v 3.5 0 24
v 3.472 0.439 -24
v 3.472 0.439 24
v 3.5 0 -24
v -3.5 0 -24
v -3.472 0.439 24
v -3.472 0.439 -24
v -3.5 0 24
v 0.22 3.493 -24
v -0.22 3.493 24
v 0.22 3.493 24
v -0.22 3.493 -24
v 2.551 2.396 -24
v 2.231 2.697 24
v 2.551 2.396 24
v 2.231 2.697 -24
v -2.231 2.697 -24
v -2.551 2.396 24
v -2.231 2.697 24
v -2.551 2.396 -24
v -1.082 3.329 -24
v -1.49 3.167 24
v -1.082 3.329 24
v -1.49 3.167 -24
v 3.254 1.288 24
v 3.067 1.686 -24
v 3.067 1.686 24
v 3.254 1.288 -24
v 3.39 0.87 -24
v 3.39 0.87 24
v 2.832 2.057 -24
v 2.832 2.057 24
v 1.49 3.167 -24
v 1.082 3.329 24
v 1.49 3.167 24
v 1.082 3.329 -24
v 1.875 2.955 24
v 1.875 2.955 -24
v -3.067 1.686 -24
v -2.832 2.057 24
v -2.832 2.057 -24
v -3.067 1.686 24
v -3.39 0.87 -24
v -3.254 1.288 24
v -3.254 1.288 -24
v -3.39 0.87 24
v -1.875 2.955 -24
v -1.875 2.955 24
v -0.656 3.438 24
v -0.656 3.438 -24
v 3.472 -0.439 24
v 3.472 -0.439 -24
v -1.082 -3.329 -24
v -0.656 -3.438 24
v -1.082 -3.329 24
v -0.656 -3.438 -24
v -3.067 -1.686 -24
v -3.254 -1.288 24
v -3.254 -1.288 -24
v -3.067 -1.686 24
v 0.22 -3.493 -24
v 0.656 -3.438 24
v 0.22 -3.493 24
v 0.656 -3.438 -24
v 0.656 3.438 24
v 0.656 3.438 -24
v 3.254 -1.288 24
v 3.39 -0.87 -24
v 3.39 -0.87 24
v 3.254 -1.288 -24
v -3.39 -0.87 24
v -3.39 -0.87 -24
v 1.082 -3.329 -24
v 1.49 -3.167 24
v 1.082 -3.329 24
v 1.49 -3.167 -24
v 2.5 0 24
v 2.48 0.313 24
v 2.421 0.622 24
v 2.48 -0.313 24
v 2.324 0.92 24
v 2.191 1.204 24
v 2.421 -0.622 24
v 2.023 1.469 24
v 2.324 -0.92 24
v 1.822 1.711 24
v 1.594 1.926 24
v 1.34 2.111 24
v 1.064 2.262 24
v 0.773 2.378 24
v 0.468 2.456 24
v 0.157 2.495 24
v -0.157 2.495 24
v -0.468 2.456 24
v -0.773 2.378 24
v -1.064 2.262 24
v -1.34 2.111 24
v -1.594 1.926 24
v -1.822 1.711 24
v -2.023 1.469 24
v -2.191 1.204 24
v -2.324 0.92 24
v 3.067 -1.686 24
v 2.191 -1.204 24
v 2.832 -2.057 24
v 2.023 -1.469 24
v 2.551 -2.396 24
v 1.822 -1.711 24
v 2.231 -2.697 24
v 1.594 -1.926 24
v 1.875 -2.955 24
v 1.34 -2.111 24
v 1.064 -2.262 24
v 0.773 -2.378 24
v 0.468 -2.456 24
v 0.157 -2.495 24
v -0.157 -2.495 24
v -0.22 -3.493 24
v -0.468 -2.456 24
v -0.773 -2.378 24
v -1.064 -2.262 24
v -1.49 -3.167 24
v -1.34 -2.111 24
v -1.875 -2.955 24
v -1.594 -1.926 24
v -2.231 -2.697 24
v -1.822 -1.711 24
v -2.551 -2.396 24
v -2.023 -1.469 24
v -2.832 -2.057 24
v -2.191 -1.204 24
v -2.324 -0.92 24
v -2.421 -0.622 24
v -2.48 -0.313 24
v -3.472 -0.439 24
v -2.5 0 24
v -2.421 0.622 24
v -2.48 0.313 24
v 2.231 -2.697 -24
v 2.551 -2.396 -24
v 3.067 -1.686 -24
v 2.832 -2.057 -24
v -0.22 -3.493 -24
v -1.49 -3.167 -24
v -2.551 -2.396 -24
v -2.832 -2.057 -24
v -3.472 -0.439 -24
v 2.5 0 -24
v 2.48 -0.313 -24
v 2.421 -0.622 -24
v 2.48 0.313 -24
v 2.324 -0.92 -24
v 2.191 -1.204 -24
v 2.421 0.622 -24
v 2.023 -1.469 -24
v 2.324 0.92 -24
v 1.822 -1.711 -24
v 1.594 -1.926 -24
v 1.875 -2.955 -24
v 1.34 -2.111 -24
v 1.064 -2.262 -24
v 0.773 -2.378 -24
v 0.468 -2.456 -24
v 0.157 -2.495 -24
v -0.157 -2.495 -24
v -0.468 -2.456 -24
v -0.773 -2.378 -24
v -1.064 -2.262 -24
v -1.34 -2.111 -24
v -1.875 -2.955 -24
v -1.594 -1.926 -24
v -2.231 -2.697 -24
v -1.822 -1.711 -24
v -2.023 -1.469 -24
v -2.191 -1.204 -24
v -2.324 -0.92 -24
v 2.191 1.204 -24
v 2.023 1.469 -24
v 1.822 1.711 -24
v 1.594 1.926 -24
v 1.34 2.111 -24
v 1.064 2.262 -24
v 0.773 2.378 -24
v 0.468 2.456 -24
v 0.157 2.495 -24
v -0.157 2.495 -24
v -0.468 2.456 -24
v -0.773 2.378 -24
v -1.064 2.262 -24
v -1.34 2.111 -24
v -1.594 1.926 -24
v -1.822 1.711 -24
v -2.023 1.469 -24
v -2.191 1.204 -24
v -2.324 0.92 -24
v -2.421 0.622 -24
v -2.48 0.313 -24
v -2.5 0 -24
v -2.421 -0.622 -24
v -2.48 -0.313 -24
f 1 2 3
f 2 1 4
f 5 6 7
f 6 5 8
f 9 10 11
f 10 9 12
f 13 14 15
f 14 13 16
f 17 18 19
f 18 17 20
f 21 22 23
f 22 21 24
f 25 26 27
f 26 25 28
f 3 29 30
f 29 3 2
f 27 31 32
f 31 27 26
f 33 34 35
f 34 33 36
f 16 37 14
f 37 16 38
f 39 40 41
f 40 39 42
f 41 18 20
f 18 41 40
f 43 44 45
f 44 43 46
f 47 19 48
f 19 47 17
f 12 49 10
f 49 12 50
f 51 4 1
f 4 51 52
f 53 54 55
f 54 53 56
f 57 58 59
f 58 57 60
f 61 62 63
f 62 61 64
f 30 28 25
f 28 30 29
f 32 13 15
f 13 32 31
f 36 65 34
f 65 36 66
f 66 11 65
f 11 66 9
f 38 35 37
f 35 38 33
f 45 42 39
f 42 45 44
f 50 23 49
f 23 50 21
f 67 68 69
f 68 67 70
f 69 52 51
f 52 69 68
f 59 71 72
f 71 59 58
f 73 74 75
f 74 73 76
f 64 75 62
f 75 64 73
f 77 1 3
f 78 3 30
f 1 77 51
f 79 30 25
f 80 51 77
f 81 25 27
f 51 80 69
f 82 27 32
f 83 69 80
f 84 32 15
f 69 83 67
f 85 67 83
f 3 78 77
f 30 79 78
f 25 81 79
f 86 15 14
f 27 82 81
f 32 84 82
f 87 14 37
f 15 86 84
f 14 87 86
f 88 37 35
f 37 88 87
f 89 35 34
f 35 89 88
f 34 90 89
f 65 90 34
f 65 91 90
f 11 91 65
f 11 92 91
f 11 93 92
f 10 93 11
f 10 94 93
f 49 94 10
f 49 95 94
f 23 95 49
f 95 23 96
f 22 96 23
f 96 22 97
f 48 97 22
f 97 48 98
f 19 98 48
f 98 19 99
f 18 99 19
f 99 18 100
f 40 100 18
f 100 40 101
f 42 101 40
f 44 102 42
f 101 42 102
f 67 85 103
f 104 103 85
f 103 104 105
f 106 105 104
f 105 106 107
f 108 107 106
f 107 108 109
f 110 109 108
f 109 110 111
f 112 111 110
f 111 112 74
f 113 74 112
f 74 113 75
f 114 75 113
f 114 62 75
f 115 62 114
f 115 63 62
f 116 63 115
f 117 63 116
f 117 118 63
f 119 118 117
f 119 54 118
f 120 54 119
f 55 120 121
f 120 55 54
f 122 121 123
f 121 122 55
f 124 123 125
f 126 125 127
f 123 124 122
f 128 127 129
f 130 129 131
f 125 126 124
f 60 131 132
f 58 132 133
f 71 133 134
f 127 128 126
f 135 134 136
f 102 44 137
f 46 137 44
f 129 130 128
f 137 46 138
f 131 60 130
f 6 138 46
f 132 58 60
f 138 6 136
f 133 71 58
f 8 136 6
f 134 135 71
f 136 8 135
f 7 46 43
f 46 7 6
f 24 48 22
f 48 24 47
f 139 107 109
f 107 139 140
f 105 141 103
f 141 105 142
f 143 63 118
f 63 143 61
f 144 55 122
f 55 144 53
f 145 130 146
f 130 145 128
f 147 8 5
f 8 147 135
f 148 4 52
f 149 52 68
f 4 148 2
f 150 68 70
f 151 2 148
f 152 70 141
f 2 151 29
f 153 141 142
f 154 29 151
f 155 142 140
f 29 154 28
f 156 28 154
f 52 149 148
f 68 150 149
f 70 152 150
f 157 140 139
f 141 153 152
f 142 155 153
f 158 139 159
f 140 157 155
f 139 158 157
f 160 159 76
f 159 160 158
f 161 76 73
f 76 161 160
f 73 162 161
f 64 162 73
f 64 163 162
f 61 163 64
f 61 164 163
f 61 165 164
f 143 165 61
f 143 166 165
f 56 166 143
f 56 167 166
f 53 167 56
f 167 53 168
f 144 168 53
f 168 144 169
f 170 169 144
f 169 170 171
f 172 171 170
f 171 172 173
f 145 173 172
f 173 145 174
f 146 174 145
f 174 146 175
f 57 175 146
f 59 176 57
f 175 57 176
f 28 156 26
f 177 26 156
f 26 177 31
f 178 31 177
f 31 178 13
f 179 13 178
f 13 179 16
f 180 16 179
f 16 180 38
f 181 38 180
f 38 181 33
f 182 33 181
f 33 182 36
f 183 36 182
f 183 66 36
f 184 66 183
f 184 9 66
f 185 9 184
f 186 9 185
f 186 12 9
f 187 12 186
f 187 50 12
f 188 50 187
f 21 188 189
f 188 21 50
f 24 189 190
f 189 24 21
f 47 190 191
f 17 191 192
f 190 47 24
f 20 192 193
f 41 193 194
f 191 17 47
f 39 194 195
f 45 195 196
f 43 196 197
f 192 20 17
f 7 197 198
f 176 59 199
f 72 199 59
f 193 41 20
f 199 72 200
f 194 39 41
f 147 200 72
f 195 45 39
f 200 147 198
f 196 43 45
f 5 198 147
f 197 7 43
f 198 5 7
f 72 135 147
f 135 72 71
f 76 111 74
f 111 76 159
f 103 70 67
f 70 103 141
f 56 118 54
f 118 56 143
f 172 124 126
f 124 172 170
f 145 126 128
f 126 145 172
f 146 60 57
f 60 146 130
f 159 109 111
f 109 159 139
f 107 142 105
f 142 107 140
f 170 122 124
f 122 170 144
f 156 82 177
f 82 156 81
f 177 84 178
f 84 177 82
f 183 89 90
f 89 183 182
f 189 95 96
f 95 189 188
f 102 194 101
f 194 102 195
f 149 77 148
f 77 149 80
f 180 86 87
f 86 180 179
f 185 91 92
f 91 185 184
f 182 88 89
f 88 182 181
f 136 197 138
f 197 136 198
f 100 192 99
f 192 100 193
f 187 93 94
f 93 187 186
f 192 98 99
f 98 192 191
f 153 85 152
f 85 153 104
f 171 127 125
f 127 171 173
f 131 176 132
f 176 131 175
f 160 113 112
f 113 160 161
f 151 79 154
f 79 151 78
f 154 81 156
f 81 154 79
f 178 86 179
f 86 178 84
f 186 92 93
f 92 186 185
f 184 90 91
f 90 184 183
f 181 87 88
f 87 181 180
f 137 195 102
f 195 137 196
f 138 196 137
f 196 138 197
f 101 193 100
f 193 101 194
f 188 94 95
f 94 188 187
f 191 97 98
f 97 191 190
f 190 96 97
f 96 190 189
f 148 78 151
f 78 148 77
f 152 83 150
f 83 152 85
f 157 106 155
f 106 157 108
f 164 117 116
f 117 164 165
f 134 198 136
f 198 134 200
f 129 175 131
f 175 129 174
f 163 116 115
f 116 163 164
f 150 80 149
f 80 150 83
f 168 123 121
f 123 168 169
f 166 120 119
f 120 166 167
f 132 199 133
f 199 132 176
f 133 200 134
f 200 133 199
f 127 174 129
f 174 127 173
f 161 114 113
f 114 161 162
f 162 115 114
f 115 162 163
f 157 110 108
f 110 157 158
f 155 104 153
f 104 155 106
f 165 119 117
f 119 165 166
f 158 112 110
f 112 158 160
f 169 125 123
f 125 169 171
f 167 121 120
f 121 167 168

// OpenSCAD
$fn = 50;


difference() {
	union() {
		translate(v = [0, 0, -24.0000000000]) {
			cylinder(h = 48, r = 3.5000000000);
		}
	}
	union() {
		translate(v = [0, 0, -100.0000000000]) {
			cylinder(h = 200, r = 2.5000000000);
		}
	}
}
